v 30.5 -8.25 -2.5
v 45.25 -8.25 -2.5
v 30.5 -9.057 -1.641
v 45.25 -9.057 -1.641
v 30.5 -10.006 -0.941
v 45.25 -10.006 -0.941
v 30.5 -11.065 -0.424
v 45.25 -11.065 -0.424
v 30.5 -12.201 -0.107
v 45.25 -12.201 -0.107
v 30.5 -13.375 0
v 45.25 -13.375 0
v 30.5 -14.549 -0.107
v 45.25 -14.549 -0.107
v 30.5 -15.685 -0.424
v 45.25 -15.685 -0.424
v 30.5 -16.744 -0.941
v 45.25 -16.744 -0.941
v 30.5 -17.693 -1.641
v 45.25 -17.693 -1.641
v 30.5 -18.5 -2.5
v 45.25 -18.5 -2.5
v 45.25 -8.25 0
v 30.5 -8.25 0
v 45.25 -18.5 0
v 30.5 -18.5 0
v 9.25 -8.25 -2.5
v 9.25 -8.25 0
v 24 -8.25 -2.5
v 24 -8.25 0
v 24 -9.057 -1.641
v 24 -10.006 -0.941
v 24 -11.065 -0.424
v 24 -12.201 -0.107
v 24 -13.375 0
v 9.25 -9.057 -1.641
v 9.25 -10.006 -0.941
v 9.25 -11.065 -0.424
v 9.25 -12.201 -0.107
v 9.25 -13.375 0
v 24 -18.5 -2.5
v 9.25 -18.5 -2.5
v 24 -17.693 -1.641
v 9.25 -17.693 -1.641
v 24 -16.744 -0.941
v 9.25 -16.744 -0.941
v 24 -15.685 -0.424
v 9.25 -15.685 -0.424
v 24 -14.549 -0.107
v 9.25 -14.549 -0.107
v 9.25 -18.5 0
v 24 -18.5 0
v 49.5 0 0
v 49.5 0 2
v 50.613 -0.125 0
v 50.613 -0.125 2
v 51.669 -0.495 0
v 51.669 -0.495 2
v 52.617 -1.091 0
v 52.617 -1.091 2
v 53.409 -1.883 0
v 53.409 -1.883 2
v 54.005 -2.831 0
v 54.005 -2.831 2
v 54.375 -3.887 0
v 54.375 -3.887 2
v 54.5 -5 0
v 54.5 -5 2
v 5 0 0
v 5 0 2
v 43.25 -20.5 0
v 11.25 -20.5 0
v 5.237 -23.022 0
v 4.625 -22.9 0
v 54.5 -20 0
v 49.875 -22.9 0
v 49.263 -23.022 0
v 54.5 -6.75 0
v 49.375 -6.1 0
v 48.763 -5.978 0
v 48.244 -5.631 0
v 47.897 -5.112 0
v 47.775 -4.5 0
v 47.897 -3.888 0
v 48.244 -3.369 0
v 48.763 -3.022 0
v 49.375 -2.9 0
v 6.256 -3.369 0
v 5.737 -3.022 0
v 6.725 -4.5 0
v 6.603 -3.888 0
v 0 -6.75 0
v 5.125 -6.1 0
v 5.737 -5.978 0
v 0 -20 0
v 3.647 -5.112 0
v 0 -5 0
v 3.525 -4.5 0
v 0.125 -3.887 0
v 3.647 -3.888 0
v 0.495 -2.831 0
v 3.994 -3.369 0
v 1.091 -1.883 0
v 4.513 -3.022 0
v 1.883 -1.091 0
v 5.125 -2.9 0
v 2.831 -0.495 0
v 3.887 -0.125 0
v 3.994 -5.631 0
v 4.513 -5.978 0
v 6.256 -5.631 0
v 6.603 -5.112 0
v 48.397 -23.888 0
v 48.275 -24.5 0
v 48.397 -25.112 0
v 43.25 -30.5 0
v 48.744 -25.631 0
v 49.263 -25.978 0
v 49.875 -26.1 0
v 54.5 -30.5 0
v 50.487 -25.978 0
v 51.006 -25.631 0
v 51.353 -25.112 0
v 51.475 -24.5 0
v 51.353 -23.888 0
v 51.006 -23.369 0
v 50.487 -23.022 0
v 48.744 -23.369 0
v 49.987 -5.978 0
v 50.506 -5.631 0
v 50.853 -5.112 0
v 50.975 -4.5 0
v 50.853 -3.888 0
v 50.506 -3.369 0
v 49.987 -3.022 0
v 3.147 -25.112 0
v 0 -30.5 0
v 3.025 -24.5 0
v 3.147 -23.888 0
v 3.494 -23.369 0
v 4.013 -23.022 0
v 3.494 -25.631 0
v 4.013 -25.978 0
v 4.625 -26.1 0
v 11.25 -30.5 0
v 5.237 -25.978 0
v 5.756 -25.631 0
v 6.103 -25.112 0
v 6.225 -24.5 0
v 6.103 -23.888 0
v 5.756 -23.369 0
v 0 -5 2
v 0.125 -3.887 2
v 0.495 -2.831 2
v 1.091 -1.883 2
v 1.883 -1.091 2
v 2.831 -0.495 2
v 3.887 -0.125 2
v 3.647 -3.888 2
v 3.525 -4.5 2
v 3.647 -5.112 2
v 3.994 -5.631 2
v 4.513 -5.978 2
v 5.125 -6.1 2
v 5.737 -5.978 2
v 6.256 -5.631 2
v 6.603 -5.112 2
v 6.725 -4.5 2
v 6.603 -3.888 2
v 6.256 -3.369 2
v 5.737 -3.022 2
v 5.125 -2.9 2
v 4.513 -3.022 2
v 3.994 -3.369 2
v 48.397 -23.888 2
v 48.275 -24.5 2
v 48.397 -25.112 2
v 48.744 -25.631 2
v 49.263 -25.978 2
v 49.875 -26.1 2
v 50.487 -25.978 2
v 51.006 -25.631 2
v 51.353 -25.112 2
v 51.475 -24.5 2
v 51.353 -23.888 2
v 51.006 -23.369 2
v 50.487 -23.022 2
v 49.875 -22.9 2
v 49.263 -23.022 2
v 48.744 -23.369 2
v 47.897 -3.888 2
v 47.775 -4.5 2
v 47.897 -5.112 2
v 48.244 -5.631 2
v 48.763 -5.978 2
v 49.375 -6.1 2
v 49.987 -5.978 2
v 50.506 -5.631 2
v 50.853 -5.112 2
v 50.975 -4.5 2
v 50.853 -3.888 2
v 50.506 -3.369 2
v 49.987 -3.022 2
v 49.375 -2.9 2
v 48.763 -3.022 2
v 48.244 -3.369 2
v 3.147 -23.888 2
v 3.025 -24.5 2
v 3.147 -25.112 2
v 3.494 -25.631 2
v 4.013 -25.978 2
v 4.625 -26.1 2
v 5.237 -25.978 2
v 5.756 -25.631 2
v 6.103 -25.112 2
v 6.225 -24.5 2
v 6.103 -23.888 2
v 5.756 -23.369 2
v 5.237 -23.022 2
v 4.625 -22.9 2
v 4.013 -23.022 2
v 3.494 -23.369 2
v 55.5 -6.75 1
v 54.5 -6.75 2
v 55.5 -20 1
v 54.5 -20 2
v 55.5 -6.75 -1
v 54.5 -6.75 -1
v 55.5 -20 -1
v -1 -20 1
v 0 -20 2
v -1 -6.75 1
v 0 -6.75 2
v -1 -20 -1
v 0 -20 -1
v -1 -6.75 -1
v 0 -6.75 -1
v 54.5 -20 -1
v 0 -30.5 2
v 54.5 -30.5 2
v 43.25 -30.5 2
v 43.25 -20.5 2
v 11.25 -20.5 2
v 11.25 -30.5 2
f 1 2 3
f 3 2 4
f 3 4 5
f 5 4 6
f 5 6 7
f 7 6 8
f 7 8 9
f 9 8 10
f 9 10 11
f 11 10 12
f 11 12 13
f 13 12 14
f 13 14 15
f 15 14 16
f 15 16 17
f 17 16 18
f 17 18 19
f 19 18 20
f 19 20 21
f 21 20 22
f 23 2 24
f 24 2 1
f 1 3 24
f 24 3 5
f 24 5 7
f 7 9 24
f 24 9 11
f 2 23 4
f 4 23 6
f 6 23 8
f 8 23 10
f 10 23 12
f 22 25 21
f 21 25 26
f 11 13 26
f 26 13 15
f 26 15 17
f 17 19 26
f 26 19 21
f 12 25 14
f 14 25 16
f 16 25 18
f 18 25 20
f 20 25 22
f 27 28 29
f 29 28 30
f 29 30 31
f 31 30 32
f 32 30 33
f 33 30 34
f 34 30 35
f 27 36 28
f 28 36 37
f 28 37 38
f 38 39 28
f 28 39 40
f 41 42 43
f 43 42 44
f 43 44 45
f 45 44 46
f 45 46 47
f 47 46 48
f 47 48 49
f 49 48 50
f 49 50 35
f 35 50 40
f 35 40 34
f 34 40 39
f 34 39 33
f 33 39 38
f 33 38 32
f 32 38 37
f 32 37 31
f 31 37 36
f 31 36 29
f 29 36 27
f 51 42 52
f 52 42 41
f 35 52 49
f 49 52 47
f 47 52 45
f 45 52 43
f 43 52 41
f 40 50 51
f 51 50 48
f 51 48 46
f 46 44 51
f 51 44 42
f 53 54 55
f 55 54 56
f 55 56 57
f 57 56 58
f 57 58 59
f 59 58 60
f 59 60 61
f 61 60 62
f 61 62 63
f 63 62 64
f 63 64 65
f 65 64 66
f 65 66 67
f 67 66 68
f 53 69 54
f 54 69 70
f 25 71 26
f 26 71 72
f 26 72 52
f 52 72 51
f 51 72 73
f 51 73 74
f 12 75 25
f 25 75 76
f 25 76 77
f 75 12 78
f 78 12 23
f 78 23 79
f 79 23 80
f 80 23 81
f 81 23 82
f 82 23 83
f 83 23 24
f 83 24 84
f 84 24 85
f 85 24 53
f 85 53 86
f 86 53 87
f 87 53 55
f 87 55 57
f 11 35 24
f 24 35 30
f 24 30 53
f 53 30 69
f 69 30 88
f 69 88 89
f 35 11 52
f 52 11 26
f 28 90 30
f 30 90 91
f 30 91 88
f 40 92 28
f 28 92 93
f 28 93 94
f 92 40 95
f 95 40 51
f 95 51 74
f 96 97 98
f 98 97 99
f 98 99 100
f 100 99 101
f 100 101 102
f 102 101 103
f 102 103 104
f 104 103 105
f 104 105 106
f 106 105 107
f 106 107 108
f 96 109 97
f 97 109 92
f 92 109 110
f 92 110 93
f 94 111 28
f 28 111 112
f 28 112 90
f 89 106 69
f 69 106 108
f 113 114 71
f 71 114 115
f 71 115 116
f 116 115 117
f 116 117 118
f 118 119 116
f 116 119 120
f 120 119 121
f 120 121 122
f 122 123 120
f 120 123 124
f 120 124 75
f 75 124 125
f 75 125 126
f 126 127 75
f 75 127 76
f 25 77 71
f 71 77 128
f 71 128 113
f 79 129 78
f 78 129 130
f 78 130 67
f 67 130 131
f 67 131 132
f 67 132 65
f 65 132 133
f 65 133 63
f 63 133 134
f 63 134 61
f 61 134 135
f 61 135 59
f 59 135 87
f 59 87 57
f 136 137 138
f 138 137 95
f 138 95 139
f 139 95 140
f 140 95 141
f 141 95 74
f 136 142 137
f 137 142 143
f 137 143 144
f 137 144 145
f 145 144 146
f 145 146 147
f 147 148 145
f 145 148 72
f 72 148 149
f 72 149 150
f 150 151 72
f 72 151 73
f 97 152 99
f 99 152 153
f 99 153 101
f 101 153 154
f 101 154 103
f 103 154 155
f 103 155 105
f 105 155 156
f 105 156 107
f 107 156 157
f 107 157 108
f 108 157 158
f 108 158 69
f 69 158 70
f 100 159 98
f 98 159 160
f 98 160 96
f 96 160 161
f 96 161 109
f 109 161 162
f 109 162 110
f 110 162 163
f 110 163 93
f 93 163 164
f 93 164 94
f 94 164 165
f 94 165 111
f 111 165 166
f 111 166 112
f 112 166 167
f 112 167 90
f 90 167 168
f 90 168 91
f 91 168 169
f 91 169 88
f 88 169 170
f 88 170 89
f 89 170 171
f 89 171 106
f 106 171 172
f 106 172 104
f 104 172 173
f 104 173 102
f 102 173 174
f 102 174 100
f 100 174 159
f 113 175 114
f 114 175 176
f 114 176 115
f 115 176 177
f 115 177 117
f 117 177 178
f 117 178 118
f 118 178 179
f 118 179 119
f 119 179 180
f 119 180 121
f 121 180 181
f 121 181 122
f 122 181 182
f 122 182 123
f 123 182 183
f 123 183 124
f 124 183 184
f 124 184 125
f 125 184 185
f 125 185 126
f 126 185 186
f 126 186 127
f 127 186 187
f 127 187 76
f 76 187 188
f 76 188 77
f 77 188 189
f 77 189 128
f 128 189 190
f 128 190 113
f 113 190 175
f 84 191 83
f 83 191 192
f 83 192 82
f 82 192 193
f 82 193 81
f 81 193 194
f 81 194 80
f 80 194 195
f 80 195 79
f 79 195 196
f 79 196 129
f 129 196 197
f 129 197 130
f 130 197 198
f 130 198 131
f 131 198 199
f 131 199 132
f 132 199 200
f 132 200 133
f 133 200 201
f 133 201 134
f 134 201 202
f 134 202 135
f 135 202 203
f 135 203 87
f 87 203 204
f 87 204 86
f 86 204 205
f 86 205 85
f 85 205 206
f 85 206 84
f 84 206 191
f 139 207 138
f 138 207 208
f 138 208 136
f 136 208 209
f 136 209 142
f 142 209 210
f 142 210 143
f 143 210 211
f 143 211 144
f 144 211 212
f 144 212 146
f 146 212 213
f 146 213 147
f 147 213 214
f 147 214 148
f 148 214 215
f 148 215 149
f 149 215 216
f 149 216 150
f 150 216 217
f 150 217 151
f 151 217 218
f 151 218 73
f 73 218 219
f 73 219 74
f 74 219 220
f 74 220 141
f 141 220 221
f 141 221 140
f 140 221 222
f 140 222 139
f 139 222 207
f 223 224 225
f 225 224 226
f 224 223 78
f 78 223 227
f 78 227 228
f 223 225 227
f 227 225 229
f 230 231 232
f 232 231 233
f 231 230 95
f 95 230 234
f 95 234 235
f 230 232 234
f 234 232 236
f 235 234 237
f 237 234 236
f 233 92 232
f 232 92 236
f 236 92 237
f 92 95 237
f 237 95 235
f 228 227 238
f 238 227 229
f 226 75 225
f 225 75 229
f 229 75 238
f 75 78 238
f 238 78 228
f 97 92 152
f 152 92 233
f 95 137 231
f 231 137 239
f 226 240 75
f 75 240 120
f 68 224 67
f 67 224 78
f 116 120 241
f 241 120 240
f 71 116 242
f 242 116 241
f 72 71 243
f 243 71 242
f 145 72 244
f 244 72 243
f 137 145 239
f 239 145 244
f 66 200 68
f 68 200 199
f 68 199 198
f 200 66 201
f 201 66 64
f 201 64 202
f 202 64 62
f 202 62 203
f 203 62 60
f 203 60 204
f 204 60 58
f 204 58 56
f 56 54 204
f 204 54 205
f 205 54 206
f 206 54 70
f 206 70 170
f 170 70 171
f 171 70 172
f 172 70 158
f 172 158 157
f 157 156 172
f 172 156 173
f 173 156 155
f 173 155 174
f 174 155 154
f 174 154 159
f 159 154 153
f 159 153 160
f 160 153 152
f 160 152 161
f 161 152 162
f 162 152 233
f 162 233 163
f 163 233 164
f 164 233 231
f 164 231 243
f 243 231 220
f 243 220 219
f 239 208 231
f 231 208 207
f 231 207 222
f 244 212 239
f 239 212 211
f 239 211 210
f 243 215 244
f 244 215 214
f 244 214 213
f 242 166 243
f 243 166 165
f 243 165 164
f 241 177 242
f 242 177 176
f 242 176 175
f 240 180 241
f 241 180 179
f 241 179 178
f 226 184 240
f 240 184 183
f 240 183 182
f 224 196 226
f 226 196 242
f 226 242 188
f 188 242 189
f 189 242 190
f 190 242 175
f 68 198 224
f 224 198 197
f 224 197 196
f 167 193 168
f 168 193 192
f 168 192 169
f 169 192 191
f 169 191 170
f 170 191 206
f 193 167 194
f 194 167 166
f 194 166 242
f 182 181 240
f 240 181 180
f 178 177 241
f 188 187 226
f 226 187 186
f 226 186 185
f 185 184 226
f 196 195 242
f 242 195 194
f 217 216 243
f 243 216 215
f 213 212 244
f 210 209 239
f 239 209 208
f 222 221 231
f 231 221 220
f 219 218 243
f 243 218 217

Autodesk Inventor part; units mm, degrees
ref_plane "YZ Plane" through (0, 0, 0) normal (1, 0, 0) x (0, 1, 0)
sketch "Náčrt1" plane through (0, 0, 0) normal (0, 0, 1) x (1, 0, 0)
  line L0 (0, 0) -> (54.5, 0)
  line L1 (54.5, 0) -> (54.5, -30.5)
  line L2 (0, -30.5) -> (0, 0)
  line L3 (0, -6.75) -> (-1, -6.75)
  line L4 (-1, -6.75) -> (-1, -20)
  line L5 (-1, -20) -> (0, -20)
  line L6 (54.5, -6.75) -> (55.5, -6.75)
  line L7 (55.5, -6.75) -> (55.5, -20)
  line L8 (55.5, -20) -> (54.5, -20)
  line L9 (54.5, -30.5) -> (43.25, -30.5)
  line L10 (43.25, -30.5) -> (43.25, -20.5)
  line L11 (43.25, -20.5) -> (11.25, -20.5)
  line L12 (11.25, -20.5) -> (11.25, -30.5)
  line L13 (11.25, -30.5) -> (0, -30.5)
  dimension "d0" = 54.5
  dimension "d1" = 30.5
  dimension "d3" = 13.25
  dimension "d4" = 1
  dimension "d5" = 1
  dimension "d6" = 13.25
  dimension "d17" = 10
  dimension "d18" = 11.25
  dimension "d41" = 10.5
  dimension "d42" = 10.5
extrude "Vysunutí1" add sketch "Náčrt1" along normal blind 2 contours L0 L1 L9 L10 L11 L12 L13 L2
extrude "Vysunutí2" add sketch "Náčrt1" along normal blind 2 and the other way blind 1 contours L2 L5 L4 L3 | L6 L7 L8 L1
chamfer "Zkosení1" distance 1 angle 45 2 edges at (-1, -13.375, 2) (55.5, -13.375, 2)
sketch "Náčrt2" plane through (0, 0, 2) normal (0, 0, 1) x (1, 0, 0)
  line L0 (43.25, -20.5) -> (43.25, -30.5) projected
  line L1 (54.5, -30.5) -> (54.5, -20) projected
  line L2 (43.25, -30.5) -> (54.5, -30.5) projected
  line L3 (49.375, -4.5) -> (54.5, -4.5) construction
  line L4 (54.5, -6.75) -> (54.5, 0) projected
  line L5 (5.125, -4.5) -> (0, -4.5) construction
  line L6 (0, 0) -> (0, -6.75) projected
  line L7 (54.5, 0) -> (0, 0) projected
  line L8 (0, -20) -> (0, -30.5) projected
  point P0 (49.875, -24.5)
  point P1 (4.625, -24.5)
  dimension "d20" = 6
  dimension "d28" = 44.25
  dimension "d31" = 6
  dimension "d50" = 4.625
  dimension "d51" = 4.5
  dimension "d52" = 4.625
hole "Díra2" at (49.875, -24.5, 2) at (49.375, -4.5, 2) at (5.125, -4.5, 2) at (4.625, -24.5, 2) direction (0, 0, -1) diameter 3.2 end through all
fillet "Zaoblení1" radius 5 2 edges at (0, 0, 1) (54.5, 0, 1)
ref_plane "Pracovní rovina1" through (9.25, -20, 0) normal (1, 0, 0) x (0, 0, -1)
sketch "Náčrt3" plane through (9.25, -20, 0) normal (1, 0, 0) x (0, 0, -1)
  line L0 (0, 0) -> (0, 13.25) projected
  line L1 (0, 1.5) -> (2.5, 1.5)
  line L2 (0, 11.75) -> (2.5, 11.75)
  line L3 (0, -10.5) -> (-2, -10.5) projected
  line L4 (0, 20) -> (-2, 20) projected
  arc A0 (2.5, 11.75) -> (2.5, 1.5) centre (6.5031, 6.625) ccw
  point P0 (0, 6.625)
  dimension "d43" = 10.25
  dimension "d44" = 2.5
  dimension "d45" = 12
  dimension "d47" = 6.5031
extrude "Vysunutí3" add sketch "Náčrt3" along normal blind 14.75
ref_plane "Pracovní rovina2" through (27.25, -20, 0) normal (1, 0, 0) x (0, 0, -1)
mirror "Zrcadlit1" about plane through (27.25, -20, 0) normal (1, 0, 0) of "Vysunutí3"
properties part number "objímka_motorů"
